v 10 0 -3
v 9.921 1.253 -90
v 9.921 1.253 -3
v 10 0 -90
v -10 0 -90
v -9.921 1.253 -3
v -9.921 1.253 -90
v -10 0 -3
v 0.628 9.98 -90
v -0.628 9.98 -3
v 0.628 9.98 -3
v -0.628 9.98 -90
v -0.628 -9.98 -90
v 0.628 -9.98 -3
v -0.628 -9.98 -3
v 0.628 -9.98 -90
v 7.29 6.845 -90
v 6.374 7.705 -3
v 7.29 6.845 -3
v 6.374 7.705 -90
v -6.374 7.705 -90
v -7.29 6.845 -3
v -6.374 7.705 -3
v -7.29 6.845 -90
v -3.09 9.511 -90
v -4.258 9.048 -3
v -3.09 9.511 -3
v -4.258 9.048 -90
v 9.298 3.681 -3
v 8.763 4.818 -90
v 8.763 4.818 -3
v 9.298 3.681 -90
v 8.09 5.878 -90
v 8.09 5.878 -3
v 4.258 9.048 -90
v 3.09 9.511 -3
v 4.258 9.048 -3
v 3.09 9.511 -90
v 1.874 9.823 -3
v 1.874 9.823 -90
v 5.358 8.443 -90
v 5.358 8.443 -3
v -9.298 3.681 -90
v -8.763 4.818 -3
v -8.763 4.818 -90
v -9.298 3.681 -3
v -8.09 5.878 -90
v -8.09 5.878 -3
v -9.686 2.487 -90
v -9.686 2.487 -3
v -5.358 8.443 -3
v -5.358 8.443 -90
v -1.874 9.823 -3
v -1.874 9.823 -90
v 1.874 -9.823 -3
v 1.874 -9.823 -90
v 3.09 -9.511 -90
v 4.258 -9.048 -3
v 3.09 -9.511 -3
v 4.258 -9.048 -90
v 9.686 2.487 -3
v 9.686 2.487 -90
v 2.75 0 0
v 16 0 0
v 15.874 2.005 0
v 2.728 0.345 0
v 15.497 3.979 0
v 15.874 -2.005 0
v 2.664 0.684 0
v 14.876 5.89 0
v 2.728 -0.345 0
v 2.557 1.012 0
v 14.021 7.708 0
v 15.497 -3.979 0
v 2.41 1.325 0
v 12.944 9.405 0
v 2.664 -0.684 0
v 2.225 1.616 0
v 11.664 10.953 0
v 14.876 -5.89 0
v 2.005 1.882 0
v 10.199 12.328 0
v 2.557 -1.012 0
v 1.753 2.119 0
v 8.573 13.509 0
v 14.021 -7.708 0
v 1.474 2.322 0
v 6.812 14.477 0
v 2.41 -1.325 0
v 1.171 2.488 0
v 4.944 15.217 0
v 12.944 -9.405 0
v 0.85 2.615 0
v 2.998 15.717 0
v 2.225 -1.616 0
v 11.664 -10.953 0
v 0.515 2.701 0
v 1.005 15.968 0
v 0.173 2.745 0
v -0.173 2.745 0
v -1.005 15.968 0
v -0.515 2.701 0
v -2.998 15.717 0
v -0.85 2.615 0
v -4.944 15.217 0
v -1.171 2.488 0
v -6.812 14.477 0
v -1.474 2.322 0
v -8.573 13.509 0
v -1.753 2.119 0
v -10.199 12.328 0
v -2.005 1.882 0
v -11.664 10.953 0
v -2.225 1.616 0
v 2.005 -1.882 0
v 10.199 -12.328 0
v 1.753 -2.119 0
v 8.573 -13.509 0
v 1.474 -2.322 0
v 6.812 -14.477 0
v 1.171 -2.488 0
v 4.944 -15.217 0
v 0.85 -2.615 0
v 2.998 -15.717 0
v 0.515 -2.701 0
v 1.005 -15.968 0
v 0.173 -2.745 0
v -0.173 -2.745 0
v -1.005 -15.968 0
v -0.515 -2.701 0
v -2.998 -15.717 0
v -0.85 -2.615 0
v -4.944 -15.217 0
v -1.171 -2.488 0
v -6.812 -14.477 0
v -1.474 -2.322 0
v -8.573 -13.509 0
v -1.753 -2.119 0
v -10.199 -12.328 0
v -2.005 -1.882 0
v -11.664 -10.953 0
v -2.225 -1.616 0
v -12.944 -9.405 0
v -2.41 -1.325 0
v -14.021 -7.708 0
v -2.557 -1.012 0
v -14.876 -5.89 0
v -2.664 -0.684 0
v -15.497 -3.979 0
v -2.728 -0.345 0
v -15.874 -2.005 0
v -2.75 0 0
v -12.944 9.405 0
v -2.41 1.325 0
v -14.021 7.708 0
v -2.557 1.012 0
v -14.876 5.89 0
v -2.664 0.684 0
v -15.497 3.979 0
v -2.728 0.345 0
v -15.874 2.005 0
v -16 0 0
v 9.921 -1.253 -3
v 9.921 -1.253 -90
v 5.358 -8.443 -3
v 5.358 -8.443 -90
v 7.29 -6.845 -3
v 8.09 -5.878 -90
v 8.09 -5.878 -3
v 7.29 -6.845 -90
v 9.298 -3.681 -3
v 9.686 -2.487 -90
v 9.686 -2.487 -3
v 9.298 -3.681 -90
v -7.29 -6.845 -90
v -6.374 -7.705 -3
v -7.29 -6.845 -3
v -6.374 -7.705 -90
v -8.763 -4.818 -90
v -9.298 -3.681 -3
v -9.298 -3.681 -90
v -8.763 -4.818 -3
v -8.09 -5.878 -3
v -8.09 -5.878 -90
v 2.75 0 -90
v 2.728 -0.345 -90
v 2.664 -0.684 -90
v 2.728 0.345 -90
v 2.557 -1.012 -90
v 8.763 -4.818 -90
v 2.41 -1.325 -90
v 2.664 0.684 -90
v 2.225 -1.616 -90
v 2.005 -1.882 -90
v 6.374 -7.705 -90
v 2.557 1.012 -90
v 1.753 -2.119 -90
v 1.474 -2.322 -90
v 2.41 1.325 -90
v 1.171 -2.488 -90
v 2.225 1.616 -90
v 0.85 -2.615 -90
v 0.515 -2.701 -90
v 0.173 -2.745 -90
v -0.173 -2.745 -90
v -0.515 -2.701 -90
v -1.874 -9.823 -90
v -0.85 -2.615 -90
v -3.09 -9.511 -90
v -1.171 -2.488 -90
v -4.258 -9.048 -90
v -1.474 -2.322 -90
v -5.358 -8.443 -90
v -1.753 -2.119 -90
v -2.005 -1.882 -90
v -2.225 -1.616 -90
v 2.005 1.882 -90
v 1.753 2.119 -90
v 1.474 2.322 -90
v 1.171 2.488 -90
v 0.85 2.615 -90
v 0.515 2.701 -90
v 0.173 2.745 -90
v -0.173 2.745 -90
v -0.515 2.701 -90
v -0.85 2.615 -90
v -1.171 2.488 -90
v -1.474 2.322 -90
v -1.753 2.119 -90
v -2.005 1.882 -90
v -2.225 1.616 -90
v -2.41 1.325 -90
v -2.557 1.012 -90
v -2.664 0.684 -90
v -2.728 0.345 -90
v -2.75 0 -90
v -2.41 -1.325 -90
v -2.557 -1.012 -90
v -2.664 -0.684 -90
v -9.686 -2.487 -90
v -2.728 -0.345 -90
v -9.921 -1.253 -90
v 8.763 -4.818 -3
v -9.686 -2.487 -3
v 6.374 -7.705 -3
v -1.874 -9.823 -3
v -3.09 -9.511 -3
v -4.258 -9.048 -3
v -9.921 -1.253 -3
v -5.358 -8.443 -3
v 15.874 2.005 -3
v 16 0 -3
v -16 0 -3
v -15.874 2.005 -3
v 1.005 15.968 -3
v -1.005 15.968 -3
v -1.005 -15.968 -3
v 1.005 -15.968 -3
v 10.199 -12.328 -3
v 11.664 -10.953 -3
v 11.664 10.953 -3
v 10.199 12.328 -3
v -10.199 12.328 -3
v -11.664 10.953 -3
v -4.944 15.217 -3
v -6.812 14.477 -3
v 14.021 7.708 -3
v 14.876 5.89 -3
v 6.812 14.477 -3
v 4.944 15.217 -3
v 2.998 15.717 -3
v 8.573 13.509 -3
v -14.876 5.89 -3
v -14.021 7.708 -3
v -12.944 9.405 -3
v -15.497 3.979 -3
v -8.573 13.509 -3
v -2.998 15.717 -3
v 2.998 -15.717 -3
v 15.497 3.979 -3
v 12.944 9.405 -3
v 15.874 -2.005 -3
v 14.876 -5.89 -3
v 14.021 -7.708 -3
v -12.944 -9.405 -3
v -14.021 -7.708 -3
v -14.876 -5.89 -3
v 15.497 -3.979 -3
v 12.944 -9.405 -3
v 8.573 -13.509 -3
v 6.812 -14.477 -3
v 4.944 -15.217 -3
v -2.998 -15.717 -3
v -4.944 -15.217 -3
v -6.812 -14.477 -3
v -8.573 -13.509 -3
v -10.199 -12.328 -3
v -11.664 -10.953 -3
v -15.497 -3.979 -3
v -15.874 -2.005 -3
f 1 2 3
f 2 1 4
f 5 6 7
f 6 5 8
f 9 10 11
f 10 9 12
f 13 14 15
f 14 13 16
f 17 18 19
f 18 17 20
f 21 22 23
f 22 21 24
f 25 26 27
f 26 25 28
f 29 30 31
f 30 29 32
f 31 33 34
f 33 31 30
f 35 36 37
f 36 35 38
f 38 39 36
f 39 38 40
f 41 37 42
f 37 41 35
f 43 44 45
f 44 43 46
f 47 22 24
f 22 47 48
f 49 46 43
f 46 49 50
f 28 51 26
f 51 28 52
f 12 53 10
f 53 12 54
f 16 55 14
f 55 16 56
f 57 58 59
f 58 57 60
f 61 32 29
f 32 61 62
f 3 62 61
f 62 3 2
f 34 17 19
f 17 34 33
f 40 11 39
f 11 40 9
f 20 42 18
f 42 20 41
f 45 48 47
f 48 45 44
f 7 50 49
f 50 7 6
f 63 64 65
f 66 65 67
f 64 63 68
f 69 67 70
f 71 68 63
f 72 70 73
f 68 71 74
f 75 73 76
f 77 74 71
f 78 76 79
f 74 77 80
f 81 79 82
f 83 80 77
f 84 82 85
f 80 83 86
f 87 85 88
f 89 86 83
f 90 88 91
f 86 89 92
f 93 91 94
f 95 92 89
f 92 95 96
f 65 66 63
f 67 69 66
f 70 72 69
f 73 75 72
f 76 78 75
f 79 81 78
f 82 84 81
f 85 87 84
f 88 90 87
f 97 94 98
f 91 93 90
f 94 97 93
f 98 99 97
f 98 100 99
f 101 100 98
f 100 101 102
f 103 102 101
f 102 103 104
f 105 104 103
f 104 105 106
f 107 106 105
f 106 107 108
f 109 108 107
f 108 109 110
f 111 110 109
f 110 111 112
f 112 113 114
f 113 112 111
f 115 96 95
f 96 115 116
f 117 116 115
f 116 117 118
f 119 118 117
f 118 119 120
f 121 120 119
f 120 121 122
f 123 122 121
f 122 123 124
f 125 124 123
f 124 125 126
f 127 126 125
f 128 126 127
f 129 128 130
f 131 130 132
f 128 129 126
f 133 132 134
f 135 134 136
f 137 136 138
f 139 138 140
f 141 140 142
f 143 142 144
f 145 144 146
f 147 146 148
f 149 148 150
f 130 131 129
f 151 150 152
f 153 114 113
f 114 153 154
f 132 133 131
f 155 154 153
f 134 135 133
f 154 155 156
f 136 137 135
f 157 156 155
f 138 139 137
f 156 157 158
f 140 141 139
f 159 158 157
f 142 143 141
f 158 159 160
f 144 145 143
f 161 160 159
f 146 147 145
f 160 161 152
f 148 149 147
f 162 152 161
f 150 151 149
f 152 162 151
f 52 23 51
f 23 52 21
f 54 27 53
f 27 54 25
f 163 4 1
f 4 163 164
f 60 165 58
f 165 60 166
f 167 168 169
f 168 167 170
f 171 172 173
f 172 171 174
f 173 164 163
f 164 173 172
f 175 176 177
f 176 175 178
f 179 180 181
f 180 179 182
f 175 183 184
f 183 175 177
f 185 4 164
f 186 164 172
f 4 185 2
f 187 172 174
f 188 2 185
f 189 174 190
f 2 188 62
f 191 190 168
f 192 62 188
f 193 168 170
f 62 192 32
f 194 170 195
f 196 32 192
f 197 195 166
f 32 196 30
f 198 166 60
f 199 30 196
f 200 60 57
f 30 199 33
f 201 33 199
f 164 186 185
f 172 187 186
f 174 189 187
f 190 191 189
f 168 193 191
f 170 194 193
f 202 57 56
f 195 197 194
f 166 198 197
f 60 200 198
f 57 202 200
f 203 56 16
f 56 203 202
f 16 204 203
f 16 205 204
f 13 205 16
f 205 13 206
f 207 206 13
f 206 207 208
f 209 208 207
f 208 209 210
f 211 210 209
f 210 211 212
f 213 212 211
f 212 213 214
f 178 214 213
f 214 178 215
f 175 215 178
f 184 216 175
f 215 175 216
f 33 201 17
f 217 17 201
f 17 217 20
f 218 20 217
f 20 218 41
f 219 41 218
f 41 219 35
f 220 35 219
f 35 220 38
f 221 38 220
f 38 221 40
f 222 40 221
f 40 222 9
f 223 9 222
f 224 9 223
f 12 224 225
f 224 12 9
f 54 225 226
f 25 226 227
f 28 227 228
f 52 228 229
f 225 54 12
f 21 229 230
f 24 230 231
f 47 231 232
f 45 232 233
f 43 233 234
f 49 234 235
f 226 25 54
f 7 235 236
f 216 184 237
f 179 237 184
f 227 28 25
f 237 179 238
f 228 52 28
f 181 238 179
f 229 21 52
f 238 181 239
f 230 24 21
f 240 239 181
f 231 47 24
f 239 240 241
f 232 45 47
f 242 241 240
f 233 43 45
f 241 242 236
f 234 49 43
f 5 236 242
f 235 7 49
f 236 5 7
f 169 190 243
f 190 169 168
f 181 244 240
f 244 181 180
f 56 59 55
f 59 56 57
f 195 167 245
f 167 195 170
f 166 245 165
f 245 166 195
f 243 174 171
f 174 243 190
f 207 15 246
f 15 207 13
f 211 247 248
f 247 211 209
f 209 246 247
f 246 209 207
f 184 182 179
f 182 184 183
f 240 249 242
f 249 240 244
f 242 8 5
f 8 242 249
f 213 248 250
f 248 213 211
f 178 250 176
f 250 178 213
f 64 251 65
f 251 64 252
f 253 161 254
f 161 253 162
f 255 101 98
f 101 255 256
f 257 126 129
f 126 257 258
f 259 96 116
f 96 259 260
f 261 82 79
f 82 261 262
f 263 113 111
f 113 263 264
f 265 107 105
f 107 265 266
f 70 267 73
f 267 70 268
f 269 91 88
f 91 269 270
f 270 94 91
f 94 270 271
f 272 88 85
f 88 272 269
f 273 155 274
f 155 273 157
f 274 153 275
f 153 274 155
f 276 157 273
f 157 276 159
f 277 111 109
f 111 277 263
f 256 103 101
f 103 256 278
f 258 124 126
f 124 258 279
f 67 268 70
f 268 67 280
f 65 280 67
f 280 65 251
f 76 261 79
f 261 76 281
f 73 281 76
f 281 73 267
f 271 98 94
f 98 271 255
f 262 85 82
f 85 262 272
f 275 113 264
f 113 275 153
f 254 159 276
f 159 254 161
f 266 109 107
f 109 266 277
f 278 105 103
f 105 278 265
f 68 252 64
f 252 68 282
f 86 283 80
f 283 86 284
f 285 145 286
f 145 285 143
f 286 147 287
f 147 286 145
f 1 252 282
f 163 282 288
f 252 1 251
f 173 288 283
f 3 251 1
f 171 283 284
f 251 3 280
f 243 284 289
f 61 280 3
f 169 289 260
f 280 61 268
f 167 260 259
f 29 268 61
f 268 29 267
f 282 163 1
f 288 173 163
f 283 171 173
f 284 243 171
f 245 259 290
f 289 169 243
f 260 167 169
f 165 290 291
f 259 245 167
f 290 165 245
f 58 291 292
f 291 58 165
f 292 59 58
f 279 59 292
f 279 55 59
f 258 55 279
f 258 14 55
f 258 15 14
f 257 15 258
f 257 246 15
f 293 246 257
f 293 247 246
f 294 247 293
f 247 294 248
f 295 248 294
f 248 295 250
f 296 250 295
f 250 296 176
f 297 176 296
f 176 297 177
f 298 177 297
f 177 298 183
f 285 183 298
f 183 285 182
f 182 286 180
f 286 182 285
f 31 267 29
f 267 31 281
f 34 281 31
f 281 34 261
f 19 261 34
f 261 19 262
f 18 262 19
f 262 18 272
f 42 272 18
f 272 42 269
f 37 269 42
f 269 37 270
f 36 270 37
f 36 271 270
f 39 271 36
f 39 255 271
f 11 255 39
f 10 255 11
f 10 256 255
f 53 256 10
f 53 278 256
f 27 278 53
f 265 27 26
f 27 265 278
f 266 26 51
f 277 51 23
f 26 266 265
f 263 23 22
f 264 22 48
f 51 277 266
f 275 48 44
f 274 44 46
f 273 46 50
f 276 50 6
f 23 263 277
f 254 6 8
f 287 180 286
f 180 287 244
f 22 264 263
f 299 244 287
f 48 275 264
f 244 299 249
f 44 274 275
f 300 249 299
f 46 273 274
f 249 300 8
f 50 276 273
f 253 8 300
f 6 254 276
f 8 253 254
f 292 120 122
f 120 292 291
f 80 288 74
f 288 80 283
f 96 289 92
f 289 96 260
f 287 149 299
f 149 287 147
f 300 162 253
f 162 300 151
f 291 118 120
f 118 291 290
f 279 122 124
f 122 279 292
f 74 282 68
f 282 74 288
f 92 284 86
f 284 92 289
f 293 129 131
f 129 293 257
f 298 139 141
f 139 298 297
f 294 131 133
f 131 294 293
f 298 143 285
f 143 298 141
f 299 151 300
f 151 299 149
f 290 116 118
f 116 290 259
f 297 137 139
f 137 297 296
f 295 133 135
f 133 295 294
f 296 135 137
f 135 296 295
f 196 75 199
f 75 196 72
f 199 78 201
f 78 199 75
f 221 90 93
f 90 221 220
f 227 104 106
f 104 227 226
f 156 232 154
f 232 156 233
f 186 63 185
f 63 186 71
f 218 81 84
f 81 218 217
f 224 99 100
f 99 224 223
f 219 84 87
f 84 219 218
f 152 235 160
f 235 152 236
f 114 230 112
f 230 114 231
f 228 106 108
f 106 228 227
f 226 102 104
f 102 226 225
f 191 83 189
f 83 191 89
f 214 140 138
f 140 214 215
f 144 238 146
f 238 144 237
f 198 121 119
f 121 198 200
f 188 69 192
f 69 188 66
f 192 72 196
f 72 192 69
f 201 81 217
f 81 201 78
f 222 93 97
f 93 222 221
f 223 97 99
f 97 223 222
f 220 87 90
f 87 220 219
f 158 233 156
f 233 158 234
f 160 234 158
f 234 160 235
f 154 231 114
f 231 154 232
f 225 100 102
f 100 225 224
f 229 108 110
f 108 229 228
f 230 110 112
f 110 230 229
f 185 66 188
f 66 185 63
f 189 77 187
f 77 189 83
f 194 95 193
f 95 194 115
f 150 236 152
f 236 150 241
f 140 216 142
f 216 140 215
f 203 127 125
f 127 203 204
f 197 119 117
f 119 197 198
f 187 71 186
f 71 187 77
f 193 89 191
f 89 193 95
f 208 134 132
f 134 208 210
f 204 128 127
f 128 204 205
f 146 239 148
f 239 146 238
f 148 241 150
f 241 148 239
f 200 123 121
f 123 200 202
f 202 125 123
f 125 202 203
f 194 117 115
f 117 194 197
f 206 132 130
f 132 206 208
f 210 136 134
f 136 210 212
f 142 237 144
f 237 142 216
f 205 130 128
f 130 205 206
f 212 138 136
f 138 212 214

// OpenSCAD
$fn = 50;


difference() {
	union() {
		translate(v = [0, 0, -90.0000000000]) {
			cylinder(h = 90, r = 10.0000000000);
		}
		translate(v = [0, 0, -3.0000000000]) {
			cylinder(h = 3, r = 16.0000000000);
		}
	}
	union() {
		#translate(v = [0, 0, -90]) {
			cylinder(h = 90, r = 2.7500000000);
		}
	}
}
